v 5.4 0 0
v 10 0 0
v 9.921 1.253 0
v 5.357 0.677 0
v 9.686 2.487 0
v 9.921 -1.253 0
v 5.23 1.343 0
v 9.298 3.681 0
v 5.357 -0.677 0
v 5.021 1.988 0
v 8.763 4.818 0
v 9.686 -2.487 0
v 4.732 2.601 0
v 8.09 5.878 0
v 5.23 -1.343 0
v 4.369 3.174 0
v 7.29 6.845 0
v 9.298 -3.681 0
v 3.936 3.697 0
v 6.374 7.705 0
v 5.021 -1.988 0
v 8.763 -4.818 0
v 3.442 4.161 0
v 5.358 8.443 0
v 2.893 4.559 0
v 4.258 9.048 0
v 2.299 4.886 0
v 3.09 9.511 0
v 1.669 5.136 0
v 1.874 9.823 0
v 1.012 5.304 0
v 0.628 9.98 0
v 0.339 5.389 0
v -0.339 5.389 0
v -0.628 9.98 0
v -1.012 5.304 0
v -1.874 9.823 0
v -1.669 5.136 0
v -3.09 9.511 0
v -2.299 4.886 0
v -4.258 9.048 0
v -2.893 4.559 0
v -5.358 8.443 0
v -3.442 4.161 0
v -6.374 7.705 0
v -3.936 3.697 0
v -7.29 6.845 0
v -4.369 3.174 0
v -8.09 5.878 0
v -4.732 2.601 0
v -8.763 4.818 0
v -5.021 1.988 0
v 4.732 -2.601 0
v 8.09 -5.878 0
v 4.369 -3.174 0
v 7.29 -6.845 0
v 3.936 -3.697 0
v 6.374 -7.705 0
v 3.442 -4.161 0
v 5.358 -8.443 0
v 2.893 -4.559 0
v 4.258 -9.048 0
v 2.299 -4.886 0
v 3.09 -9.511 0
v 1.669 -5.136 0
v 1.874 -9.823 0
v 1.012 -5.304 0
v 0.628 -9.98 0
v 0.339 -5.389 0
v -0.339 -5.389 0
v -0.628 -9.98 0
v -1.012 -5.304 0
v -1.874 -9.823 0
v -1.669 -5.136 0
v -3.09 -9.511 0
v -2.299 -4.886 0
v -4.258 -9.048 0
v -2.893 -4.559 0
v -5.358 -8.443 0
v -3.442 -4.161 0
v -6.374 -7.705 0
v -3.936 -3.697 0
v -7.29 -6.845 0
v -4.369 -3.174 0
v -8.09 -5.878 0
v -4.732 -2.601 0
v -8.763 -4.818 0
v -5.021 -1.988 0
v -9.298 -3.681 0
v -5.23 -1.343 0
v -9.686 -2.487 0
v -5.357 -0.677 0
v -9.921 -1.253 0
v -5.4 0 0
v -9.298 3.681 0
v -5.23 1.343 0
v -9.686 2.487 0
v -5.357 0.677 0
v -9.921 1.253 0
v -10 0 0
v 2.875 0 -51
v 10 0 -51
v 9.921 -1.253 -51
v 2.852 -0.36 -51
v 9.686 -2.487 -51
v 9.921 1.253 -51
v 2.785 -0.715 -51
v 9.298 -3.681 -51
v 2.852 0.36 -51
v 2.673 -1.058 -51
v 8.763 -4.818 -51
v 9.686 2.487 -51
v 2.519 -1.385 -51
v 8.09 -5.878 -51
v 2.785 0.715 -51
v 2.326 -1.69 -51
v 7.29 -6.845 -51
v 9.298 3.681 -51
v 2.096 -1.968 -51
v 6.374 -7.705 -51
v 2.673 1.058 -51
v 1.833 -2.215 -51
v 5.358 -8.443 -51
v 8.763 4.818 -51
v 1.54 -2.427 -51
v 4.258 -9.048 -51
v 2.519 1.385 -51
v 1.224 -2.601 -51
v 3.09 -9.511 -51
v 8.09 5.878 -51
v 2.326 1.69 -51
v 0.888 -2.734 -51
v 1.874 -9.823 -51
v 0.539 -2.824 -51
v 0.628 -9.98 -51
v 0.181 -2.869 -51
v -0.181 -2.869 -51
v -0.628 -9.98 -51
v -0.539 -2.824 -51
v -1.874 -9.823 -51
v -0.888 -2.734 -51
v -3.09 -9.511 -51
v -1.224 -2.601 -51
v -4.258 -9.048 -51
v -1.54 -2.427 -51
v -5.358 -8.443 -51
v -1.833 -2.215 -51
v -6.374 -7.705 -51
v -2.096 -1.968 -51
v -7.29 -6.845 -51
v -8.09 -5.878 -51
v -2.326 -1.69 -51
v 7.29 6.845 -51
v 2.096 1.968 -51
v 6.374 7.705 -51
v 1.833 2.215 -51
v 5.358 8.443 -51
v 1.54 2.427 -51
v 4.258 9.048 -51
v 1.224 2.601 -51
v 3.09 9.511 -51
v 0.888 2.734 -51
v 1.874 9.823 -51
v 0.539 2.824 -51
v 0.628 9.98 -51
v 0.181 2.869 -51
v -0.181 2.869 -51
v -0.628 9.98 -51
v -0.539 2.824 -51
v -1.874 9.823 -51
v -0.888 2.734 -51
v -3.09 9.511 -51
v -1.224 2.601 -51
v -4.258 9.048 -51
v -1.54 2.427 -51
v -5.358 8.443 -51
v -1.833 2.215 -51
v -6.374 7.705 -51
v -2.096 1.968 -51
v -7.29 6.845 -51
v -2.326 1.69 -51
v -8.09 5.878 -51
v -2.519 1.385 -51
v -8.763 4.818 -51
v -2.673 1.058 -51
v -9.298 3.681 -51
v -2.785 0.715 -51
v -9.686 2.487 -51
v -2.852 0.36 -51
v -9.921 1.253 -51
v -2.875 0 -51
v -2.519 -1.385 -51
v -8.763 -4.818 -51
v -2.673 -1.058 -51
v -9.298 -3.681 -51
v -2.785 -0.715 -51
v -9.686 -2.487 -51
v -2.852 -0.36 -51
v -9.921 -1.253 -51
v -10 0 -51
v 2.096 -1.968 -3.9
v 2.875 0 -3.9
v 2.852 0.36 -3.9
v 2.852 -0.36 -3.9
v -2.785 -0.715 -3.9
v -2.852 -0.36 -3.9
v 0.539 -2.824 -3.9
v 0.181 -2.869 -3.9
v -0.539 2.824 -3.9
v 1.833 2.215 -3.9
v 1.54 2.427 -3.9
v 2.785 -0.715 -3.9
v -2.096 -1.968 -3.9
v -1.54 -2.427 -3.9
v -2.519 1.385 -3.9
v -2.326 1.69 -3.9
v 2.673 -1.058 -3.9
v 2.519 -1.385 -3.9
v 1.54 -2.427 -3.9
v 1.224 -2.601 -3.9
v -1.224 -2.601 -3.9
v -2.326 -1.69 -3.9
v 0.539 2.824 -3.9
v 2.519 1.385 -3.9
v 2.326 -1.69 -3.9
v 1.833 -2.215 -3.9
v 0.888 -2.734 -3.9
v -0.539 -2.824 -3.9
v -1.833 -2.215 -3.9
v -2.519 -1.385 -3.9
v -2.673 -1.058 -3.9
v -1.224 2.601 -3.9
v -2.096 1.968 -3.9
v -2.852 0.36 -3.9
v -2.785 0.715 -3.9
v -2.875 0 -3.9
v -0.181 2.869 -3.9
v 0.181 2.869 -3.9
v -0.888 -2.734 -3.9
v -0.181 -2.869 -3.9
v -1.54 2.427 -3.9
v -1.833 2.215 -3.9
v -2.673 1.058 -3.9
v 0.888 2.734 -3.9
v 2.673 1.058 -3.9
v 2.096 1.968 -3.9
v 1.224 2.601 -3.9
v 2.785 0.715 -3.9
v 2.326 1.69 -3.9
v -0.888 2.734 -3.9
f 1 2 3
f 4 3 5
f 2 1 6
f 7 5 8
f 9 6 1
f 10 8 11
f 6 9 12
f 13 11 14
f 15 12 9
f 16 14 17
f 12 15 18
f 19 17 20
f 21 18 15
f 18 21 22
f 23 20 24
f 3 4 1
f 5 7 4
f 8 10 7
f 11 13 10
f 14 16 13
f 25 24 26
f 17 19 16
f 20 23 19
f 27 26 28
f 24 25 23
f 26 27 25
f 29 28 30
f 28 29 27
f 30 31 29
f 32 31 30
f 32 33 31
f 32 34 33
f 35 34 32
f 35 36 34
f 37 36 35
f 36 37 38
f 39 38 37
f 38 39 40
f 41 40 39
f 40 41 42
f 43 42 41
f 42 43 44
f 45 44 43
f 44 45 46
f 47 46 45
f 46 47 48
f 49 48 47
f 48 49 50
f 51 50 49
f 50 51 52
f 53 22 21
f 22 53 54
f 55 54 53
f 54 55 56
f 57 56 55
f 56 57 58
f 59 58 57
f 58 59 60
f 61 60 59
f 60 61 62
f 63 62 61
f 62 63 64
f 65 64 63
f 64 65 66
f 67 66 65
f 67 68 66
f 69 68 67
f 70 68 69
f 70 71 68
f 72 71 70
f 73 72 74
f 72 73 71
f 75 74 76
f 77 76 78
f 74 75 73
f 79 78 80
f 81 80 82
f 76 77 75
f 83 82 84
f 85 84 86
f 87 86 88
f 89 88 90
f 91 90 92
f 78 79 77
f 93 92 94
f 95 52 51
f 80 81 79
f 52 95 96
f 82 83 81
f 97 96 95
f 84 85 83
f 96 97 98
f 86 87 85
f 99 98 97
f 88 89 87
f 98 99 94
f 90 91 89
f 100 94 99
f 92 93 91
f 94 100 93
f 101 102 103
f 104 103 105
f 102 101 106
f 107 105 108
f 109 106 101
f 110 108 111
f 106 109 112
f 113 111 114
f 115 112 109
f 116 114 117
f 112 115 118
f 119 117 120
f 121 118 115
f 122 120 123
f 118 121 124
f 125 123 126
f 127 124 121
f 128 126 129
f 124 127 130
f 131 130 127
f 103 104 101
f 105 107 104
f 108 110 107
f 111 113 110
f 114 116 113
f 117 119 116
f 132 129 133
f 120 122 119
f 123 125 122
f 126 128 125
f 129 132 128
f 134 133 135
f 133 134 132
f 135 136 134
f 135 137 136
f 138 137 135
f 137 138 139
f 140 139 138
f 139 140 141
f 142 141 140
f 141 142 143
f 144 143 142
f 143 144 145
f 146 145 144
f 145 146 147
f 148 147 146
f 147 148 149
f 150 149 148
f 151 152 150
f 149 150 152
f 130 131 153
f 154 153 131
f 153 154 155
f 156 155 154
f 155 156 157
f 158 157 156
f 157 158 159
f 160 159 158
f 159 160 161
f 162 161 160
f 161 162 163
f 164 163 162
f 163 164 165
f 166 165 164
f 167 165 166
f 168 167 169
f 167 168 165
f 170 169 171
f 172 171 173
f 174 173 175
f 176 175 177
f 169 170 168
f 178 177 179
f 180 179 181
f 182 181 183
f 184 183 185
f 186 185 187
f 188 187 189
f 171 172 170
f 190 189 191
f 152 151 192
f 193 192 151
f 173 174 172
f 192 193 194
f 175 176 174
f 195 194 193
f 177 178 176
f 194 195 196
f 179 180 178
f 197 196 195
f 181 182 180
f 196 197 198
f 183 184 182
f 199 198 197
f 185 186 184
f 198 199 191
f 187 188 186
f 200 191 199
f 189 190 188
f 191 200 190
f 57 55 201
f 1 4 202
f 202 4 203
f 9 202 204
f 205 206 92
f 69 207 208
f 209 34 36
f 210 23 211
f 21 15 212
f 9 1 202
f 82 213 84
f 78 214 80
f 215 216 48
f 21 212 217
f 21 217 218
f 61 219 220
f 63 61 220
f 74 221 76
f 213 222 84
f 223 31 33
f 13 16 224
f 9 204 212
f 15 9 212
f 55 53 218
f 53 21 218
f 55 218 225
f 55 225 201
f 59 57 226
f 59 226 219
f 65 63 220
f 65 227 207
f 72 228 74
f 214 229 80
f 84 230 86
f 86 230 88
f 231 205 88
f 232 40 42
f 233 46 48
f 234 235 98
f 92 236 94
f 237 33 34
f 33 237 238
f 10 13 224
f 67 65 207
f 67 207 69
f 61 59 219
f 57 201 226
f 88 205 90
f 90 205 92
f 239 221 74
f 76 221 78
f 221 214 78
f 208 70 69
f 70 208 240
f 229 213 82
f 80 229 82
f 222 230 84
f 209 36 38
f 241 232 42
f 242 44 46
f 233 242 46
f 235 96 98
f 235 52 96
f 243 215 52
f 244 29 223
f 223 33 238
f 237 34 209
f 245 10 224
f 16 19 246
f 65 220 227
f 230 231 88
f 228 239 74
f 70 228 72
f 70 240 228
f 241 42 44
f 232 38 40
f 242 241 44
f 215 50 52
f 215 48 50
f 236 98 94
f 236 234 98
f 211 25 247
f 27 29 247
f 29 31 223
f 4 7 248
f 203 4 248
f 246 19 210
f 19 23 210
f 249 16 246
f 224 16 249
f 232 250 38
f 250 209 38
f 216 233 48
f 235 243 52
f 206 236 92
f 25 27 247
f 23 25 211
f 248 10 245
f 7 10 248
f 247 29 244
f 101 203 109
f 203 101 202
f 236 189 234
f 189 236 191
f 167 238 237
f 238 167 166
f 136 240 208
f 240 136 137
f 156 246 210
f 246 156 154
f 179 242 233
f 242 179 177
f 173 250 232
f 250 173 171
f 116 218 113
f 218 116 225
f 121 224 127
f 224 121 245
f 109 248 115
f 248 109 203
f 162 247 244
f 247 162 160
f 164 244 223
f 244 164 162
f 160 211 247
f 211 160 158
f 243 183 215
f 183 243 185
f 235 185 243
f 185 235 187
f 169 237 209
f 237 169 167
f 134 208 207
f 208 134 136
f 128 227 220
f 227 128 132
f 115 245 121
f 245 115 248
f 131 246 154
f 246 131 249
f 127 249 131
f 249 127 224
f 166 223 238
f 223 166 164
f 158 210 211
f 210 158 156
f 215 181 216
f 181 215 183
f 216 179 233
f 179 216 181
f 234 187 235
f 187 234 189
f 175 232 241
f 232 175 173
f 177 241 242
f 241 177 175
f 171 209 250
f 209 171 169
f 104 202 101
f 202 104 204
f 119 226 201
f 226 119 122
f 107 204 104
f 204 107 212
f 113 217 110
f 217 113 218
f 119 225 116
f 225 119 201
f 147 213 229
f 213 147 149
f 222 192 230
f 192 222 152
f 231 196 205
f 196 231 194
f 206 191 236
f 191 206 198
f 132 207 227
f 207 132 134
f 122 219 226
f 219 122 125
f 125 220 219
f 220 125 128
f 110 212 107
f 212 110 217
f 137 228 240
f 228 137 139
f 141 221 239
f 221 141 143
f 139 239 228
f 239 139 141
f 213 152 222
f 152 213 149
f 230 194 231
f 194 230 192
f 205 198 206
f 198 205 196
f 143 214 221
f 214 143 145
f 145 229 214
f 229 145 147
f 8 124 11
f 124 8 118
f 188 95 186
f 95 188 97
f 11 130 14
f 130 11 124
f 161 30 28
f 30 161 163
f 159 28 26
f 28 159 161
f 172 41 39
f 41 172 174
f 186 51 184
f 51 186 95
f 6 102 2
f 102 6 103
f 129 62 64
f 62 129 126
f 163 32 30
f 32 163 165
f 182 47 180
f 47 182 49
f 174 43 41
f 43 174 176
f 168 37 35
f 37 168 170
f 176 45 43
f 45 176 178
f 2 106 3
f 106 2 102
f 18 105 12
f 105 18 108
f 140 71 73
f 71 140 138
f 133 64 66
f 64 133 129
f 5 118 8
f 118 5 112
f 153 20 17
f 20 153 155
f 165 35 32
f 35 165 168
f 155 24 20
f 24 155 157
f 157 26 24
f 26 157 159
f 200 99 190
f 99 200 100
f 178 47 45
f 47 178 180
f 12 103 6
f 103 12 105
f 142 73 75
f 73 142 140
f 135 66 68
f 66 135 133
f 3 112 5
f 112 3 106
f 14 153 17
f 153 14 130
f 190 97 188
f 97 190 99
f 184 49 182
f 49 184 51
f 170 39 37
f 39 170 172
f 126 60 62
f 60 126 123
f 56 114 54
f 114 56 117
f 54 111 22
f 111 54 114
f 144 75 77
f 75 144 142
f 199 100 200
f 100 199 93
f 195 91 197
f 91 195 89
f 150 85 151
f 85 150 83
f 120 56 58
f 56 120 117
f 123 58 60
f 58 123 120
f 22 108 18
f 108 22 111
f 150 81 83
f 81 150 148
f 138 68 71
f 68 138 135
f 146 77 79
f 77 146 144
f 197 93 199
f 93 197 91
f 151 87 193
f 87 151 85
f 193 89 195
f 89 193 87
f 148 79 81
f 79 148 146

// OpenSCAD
$fn = 50;


difference() {
	union() {
		translate(v = [0, 0, -51.0000000000]) {
			cylinder(h = 51, r = 10.0000000000);
		}
	}
	union() {
		translate(v = [0, 0, 0]) {
			rotate(a = [0, 0, 0]) {
				difference() {
					union() {
						#translate(v = [0, 0, -51.0000000000]) {
							cylinder(h = 51, r = 2.6000000000);
						}
						#translate(v = [0, 0, -3.9000000000]) {
							cylinder(h = 3.9000000000, r = 10.0000000000, r1 = 2.8750000000, r2 = 5.4000000000);
						}
						#translate(v = [0, 0, -51.0000000000]) {
							cylinder(h = 51, r = 2.8750000000);
						}
						#translate(v = [0, 0, -51.0000000000]) {
							cylinder(h = 51, r = 2.6000000000);
						}
					}
					union();
				}
			}
		}
	}
}
